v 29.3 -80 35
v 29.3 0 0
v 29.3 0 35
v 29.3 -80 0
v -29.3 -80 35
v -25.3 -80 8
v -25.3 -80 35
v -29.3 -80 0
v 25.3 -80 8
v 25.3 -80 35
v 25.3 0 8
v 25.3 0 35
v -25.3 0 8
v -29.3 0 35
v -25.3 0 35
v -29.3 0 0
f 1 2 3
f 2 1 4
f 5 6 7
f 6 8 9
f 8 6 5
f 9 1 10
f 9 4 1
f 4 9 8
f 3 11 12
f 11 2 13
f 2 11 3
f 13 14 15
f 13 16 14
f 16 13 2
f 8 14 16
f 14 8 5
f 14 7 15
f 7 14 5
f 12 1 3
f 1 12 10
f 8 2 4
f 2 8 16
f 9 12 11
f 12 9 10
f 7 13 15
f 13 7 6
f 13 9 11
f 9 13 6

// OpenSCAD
tw = 35; // tape width
h = 80; // block height

tb = 8; // blocker thickness
tt = 4;  // tape surfaces thickness

kw = 58.8-0.2; // kallax subdivision width - tolerance

rotate([90,0,0]) difference() {
    translate([-kw/2,0,0])cube([kw,tw,h]);

    bdx = kw - tt*2;
    translate([-bdx/2,tb,0])cube([bdx,tw,h]);
}
